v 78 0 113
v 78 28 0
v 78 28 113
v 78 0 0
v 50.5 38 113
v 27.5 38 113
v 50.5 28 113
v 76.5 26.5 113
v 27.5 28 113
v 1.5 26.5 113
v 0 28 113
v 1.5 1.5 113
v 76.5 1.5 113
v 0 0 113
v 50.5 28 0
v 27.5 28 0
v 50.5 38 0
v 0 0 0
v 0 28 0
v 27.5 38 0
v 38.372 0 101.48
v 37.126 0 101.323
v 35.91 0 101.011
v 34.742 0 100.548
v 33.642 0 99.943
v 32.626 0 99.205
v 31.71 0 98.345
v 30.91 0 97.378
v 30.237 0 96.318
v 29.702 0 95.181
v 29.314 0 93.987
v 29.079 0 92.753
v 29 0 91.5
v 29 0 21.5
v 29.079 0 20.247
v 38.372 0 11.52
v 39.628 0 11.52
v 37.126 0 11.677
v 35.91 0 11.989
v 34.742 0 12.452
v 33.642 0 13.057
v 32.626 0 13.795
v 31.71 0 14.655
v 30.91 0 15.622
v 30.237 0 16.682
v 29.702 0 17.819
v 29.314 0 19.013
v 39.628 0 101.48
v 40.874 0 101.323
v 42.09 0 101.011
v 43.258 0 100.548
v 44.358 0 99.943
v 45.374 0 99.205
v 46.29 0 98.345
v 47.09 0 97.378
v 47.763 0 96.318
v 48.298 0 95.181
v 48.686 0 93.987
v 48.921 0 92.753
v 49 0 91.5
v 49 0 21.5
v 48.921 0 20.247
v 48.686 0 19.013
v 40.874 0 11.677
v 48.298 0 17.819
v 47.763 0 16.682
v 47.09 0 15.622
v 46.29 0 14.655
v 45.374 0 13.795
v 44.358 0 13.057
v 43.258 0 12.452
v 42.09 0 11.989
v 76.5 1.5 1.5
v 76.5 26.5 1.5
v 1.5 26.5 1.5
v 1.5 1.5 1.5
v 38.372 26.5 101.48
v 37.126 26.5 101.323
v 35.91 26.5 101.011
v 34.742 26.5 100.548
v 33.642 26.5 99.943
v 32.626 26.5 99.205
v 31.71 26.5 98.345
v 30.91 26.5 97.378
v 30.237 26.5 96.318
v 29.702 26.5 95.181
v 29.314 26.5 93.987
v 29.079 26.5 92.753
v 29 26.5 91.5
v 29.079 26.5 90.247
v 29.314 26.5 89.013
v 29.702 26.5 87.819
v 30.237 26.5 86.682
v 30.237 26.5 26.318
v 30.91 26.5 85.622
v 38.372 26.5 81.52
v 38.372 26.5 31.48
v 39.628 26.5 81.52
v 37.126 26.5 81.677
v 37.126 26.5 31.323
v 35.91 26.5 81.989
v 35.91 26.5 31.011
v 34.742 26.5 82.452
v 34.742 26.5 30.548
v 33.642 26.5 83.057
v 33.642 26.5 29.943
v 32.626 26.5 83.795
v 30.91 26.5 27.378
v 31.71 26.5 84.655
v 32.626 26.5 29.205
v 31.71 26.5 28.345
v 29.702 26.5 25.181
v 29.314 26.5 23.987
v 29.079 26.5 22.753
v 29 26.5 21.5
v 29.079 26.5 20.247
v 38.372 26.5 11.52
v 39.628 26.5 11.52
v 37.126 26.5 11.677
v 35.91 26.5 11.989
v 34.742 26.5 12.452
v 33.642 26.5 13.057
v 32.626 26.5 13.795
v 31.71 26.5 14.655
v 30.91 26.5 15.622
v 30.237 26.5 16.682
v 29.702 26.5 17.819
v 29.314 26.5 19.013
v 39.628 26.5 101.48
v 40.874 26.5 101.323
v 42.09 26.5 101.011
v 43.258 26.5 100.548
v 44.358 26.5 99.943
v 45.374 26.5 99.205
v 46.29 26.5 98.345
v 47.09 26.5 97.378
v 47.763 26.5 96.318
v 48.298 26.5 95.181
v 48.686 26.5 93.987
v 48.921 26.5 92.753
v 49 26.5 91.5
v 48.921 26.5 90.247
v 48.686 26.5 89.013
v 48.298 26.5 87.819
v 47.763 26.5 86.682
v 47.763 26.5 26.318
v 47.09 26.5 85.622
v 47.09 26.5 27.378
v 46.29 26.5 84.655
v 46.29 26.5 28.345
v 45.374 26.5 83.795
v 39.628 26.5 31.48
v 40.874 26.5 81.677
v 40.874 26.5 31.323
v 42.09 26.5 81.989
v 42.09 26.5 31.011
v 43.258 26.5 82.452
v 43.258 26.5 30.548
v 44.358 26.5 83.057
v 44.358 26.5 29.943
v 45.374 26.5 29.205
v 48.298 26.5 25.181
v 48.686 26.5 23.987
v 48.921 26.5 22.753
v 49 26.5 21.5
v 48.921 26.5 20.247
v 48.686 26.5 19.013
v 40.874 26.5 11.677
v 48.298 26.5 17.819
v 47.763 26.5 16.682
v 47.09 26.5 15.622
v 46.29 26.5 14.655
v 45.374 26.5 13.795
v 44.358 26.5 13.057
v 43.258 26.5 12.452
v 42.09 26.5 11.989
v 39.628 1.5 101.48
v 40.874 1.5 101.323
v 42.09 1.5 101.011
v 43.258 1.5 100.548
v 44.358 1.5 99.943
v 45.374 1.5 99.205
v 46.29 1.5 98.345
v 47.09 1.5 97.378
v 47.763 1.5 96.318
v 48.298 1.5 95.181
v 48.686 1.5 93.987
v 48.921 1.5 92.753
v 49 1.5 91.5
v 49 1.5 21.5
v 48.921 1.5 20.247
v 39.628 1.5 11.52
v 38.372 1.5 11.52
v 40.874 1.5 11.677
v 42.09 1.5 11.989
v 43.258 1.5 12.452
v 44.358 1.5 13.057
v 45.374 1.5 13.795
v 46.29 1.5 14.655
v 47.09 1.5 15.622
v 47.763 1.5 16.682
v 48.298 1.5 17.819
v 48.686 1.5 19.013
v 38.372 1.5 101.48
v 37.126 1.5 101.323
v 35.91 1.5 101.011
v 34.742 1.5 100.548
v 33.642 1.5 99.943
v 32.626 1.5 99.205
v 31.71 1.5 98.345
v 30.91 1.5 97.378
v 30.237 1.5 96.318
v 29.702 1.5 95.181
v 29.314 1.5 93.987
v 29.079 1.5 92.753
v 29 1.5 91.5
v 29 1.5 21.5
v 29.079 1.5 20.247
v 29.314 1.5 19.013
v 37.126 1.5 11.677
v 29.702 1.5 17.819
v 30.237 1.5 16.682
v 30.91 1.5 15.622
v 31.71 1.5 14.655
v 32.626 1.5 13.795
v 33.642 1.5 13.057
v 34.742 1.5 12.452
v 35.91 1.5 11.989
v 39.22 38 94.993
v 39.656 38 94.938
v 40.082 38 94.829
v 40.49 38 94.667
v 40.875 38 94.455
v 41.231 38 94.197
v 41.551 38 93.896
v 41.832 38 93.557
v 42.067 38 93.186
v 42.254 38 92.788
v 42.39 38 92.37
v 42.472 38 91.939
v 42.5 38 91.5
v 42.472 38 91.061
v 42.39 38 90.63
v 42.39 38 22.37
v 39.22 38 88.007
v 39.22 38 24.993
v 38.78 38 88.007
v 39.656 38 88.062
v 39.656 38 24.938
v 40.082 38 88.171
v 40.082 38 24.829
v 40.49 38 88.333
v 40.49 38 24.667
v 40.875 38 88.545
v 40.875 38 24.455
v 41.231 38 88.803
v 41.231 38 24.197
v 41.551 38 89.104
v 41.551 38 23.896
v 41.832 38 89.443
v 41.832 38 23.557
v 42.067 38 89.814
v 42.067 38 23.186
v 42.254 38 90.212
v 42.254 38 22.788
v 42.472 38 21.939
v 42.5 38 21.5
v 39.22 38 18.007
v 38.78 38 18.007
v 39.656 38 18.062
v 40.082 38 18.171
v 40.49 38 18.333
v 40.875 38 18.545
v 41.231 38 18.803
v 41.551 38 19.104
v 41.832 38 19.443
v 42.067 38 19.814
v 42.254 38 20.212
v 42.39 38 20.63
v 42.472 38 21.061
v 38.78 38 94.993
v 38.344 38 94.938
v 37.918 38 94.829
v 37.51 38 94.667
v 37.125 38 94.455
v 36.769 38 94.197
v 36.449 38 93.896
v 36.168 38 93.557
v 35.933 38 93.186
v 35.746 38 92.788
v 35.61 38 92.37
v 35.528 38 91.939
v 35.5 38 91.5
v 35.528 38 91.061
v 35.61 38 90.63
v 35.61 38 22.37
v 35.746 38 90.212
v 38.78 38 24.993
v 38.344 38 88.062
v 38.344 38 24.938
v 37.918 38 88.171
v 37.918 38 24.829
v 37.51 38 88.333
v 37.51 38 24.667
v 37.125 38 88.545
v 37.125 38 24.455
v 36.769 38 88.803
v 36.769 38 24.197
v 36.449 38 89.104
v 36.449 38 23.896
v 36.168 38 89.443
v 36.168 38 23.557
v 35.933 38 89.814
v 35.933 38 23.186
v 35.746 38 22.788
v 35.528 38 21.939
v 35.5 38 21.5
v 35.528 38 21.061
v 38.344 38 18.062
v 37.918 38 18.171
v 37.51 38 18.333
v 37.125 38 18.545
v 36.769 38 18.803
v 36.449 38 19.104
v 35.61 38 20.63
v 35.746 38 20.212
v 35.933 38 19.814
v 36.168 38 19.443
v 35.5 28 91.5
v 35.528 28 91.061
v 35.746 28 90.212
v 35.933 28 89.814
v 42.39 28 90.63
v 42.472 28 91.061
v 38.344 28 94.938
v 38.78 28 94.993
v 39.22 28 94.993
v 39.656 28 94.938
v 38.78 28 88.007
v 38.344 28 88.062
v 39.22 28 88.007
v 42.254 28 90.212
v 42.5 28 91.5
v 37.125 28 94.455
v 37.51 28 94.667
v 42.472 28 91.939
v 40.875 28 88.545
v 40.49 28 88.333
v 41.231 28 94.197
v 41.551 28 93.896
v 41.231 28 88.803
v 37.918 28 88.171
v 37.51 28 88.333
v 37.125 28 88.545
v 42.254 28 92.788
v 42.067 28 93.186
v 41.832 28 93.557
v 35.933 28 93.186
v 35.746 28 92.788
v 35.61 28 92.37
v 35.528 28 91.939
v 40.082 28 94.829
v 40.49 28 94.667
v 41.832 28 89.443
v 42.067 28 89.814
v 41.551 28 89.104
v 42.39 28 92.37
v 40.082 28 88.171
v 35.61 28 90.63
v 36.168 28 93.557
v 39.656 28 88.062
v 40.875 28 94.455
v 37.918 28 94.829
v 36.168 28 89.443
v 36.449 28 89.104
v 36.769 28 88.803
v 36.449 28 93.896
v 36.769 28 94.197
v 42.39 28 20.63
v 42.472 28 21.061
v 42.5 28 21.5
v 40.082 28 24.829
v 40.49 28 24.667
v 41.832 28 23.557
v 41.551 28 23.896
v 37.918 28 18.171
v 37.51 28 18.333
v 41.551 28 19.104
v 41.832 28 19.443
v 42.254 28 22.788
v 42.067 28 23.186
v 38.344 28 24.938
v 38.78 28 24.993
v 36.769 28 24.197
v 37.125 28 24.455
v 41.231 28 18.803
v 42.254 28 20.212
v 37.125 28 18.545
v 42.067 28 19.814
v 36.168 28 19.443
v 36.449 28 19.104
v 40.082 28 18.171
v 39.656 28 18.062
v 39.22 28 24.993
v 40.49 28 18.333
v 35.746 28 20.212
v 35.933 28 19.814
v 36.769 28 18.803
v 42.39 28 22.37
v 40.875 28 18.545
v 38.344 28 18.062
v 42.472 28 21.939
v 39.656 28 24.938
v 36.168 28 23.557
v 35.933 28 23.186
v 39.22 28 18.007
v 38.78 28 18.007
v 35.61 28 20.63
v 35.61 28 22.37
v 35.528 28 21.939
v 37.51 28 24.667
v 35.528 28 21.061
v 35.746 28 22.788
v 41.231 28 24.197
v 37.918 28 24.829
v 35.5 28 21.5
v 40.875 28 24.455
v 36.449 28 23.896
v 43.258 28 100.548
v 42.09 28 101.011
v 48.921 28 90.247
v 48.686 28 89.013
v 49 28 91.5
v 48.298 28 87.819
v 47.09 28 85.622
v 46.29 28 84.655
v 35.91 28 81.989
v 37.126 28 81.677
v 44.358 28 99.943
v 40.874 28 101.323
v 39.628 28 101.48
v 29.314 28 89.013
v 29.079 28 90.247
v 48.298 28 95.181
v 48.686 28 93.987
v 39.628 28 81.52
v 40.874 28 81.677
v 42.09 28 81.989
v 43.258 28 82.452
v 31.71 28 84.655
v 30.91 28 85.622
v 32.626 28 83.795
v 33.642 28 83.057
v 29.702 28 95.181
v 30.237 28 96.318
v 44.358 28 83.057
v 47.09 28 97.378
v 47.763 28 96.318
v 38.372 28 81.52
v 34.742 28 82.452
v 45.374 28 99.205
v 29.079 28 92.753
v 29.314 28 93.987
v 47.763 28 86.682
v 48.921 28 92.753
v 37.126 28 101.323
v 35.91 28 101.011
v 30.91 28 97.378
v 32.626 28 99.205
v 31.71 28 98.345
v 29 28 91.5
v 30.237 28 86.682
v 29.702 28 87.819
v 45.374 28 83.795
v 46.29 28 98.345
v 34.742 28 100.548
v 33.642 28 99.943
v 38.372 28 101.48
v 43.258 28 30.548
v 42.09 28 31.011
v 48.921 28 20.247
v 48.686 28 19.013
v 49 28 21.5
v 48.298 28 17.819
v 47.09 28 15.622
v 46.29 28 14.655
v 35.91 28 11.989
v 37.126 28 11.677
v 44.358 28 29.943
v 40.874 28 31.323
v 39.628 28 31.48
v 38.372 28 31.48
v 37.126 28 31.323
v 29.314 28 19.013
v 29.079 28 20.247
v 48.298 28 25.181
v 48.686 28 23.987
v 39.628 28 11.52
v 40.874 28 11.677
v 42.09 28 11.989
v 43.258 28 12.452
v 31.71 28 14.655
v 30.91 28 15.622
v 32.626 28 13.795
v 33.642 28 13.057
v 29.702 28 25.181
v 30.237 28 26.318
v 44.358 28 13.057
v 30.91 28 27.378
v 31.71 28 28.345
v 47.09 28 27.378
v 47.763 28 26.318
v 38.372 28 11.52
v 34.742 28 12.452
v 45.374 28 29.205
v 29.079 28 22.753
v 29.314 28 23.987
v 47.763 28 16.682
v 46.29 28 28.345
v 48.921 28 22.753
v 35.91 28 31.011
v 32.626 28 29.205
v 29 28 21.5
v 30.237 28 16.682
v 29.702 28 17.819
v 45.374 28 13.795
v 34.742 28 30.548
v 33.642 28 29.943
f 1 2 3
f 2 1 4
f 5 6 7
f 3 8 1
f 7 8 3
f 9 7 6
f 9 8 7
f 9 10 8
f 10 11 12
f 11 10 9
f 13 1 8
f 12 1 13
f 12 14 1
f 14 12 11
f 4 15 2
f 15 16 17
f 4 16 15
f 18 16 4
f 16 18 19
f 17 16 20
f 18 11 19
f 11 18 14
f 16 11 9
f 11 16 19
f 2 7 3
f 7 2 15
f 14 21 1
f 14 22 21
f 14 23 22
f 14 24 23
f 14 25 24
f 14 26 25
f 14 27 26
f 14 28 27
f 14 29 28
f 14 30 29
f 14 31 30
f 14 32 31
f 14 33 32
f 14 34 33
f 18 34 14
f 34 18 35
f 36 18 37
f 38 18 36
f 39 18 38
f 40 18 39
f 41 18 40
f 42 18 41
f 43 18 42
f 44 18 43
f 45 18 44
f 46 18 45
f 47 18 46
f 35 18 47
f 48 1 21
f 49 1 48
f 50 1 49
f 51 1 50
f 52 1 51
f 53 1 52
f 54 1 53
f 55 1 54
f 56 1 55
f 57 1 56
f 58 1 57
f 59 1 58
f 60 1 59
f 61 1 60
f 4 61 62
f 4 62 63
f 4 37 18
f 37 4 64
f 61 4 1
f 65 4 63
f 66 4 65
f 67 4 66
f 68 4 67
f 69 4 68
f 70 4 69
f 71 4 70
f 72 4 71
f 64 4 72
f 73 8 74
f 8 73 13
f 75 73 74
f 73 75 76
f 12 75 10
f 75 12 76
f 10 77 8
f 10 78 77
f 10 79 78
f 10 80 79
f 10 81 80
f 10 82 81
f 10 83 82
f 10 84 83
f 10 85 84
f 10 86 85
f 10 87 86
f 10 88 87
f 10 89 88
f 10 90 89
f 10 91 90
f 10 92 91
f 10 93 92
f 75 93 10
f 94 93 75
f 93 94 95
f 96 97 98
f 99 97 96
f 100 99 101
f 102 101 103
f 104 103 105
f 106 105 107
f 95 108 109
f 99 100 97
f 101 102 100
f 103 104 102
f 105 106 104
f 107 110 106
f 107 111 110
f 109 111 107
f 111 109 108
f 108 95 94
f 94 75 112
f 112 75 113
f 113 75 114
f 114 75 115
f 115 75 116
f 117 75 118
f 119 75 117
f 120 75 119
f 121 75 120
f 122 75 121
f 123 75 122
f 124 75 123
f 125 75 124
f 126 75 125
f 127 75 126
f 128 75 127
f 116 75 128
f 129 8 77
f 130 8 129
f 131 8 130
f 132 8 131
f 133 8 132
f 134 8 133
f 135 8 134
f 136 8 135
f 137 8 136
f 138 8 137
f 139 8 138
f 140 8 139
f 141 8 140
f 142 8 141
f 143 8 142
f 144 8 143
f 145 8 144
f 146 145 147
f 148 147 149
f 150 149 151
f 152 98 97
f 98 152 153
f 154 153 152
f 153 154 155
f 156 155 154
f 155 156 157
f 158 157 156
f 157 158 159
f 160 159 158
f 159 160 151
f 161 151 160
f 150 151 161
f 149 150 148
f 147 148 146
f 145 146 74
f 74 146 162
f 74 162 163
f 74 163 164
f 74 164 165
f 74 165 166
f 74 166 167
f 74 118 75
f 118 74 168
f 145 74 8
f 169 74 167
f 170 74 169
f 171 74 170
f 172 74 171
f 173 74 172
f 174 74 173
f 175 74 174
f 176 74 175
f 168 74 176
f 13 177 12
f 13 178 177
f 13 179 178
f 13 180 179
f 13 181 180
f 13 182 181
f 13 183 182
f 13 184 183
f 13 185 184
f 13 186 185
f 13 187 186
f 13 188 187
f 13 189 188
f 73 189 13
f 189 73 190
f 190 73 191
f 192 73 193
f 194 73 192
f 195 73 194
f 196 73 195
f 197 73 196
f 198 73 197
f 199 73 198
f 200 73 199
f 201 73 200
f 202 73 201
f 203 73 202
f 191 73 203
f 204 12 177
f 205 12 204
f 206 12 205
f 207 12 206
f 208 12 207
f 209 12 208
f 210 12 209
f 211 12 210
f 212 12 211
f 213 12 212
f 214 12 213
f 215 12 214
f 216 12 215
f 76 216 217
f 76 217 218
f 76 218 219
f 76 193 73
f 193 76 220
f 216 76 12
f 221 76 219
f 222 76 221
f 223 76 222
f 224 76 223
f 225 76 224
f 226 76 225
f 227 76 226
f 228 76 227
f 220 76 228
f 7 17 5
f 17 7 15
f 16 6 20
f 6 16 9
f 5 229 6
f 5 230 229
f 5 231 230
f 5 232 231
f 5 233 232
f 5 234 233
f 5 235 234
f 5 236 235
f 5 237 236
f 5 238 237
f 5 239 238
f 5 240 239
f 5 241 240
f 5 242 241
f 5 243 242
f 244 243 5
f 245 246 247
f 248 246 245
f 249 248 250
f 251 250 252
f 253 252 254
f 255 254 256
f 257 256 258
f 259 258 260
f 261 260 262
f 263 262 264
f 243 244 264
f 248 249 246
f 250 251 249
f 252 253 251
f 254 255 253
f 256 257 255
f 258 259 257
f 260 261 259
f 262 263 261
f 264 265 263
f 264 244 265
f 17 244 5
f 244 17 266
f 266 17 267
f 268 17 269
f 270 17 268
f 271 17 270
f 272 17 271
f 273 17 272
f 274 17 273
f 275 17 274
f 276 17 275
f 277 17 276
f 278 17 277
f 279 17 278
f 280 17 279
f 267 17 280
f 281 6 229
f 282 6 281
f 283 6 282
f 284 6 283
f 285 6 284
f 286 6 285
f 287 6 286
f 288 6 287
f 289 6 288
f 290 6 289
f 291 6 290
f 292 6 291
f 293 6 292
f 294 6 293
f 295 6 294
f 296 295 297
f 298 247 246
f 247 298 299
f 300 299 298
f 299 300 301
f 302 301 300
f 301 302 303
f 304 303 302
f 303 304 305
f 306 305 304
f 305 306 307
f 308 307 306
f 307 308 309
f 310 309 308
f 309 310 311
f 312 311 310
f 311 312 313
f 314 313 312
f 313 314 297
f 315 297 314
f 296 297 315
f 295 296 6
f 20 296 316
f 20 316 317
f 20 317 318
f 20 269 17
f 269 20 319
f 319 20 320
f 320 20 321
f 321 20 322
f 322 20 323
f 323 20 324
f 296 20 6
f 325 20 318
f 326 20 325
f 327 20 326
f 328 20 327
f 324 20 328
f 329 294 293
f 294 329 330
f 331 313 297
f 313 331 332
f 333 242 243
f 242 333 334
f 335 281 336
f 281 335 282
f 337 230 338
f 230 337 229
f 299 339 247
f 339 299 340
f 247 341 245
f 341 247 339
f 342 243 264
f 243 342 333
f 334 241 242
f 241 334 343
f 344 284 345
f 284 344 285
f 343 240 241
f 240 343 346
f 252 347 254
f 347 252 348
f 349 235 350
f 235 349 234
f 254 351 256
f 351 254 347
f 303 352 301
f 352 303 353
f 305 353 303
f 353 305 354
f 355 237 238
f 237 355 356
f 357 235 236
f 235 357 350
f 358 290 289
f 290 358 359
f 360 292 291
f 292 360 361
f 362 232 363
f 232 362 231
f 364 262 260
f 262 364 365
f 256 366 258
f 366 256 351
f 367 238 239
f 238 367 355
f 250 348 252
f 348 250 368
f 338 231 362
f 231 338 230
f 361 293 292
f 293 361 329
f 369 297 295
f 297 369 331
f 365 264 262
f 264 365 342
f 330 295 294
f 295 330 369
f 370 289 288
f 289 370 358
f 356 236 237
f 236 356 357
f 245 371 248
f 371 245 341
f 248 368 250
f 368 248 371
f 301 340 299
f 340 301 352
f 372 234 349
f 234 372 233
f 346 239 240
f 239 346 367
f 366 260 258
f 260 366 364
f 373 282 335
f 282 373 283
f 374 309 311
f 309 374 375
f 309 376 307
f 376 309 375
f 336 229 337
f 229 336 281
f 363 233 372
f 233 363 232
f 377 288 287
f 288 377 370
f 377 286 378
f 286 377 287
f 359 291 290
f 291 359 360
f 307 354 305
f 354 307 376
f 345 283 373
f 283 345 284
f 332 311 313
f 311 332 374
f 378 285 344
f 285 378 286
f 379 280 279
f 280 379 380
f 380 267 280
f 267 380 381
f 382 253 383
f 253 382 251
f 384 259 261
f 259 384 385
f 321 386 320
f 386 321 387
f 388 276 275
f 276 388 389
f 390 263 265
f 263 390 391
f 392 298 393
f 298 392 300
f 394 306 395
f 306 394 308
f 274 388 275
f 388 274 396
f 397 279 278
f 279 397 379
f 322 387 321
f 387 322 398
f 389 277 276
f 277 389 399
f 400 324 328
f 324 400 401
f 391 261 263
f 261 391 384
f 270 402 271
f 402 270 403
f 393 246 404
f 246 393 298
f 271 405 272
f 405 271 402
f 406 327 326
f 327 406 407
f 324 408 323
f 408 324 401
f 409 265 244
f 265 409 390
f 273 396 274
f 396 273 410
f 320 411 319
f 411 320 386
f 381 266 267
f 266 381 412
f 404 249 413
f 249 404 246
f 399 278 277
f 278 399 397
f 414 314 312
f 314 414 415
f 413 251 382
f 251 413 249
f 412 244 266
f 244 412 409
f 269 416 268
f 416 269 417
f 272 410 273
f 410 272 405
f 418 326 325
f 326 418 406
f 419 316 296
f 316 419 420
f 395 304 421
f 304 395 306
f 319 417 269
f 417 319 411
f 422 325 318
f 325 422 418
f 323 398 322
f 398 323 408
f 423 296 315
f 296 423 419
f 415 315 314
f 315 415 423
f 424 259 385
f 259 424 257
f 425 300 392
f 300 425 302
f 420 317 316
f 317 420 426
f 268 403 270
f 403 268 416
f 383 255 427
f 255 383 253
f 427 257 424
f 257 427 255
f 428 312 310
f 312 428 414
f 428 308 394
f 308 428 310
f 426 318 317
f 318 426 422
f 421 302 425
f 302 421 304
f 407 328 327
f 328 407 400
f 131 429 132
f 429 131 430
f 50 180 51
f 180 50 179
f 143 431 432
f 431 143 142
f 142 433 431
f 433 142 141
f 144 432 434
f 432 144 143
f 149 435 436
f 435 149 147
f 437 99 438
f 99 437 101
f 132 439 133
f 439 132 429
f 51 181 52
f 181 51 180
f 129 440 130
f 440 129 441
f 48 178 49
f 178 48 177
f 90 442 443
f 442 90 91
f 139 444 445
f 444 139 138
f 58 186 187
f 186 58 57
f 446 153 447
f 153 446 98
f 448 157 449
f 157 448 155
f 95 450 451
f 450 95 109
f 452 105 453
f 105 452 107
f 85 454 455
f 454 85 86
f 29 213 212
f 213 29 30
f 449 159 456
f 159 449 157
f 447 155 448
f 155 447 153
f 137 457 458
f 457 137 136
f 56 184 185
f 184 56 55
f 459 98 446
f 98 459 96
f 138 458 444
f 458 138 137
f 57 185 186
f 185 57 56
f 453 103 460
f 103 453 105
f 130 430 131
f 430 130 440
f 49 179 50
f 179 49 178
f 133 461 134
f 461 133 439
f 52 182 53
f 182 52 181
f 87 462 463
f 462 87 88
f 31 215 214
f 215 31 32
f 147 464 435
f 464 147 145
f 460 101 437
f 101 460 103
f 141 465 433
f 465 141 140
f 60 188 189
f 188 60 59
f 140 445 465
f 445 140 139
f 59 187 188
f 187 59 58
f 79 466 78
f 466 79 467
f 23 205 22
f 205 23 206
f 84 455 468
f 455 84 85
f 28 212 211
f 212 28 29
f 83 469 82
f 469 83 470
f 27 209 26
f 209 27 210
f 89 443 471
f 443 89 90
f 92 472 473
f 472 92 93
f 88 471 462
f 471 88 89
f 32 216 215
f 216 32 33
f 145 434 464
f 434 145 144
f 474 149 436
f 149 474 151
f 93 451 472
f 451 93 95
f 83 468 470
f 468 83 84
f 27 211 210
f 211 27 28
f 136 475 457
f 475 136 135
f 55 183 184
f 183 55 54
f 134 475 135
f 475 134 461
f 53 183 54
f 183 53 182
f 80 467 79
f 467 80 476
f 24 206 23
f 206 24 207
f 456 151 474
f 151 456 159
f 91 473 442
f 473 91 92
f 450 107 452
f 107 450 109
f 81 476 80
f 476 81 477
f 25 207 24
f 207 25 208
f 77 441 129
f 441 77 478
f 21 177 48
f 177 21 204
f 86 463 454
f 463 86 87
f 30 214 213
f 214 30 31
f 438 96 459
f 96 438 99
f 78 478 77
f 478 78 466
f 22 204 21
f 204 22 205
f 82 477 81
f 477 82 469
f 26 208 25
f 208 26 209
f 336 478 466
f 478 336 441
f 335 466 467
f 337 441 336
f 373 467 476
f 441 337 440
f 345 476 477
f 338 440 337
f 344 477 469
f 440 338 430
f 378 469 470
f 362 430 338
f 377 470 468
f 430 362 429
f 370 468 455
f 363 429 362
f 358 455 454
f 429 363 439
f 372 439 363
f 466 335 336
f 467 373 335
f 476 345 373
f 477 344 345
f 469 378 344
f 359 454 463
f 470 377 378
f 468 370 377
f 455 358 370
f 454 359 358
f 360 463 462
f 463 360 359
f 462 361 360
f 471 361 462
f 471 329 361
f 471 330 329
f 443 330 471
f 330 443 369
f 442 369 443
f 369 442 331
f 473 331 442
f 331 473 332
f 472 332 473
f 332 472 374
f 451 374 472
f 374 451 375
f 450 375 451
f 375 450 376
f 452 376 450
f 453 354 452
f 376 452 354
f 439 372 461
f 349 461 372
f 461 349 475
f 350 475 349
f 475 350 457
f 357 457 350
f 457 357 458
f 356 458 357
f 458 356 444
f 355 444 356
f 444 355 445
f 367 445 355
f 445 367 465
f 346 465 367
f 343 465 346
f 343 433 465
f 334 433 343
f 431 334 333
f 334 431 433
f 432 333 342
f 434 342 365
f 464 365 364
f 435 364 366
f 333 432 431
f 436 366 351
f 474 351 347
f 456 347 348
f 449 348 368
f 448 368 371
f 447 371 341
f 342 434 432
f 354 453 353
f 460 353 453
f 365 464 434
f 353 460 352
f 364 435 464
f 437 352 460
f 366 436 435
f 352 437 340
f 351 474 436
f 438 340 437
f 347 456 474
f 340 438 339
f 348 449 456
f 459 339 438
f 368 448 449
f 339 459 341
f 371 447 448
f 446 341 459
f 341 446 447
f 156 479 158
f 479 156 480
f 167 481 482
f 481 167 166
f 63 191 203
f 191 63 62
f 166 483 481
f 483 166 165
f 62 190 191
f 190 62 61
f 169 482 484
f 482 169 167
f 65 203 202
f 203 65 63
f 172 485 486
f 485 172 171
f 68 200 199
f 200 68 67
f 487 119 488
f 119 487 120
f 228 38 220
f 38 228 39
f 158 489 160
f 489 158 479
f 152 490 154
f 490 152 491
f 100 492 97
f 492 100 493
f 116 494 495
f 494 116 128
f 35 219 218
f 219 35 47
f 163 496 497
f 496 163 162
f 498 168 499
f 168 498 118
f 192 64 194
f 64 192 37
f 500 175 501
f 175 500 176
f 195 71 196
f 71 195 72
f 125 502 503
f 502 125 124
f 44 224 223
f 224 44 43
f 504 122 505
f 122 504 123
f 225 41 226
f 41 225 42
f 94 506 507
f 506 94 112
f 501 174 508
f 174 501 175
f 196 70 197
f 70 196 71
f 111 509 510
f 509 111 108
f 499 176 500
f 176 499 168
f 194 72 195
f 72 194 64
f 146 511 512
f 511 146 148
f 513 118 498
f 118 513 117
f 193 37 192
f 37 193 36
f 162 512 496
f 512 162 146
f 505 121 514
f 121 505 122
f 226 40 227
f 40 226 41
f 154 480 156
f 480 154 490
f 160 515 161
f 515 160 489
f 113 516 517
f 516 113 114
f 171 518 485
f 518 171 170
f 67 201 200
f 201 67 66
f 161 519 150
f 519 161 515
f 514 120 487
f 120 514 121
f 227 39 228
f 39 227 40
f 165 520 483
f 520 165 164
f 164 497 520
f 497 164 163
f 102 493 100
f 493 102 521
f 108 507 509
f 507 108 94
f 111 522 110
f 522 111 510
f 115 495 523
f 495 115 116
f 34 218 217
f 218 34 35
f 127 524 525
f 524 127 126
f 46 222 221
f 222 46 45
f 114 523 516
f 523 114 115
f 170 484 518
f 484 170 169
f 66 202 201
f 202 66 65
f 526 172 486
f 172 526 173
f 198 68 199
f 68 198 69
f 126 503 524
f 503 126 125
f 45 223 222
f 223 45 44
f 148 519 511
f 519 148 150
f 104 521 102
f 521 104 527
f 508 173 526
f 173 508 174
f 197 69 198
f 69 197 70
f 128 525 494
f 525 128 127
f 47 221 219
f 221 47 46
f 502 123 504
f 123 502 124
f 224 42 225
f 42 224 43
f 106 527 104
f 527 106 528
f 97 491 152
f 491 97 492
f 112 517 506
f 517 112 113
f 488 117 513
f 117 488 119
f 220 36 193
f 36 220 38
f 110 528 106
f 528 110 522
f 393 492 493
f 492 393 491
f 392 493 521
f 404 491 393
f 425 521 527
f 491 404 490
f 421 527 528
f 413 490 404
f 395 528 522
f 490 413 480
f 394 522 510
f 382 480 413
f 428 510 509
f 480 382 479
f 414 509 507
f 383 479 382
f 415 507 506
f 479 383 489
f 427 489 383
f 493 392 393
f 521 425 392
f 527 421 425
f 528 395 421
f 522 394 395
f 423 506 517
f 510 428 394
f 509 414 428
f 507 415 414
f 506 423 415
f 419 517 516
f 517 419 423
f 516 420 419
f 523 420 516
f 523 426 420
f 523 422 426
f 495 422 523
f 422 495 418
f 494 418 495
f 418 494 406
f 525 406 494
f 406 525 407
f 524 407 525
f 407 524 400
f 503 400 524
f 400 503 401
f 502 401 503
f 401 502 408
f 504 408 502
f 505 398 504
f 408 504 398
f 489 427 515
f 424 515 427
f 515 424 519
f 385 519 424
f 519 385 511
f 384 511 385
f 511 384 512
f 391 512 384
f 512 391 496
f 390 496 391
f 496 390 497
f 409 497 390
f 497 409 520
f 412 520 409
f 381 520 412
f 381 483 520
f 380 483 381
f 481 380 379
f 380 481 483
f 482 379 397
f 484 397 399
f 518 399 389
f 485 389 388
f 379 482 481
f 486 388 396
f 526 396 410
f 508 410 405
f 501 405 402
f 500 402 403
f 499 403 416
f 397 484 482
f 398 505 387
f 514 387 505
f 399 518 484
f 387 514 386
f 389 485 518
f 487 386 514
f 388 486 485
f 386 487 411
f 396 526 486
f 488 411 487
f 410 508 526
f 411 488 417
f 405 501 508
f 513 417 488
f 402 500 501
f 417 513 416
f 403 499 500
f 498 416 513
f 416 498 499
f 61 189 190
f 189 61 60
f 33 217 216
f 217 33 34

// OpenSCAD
/* [Parameters] */

//Thickness of the cradle walls
WALL_THICKNESS = 1.5; 

//Inner measurement of the cradle from front to back
CRADLE_INNER_DEPTH = 25; //[10:100]
//Inner measurement of the cradle from left to right
CRADLE_INNER_WIDTH = 75; //[10:100]
//Inner measurement of the cradle from top (opening) to bottom
CRADLE_INNER_HEIGHT = 110; //[10:300]
//Thickness of the block on the (mounted to bike)
OFFSET_BLOCK_D = 10; //[1:50]
//Distance on center between the 2 rear mounting holes
SCREW_HOLE_DIST = 70; //[0:100]

//Diameter of the screw holes.  Typically use 1mm larger than your screw size.  IE, if using M6 screws, set this to 7
SCREW_HOLE_W = 7; //[2:10]

//Width of the countersink around the screw holes.  This must be large enough to fit your wrench/driver and washer.  This should also be slightly oversized
SCREW_COUNTER_W = 20; //[10:50]

//Depth of the offset block behind the screw countersink.  A smaller depth will mean a thinner part between the screw head and bike.
SCREW_COUNTER_D = 10; //[0:90]

/* [Hidden] */
CRADLE_D = CRADLE_INNER_DEPTH + WALL_THICKNESS*2; 
CRADLE_W = CRADLE_INNER_WIDTH + WALL_THICKNESS*2;
CRADLE_H = CRADLE_INNER_HEIGHT + WALL_THICKNESS*2;;
OFFSET_BLOCK_W = SCREW_COUNTER_W + WALL_THICKNESS*2;
OFFSET_BLOCK_H  = CRADLE_H;


$fn = 50;
difference()
{
	union()
	{
		//Build cradle
		difference()
		{
			cube([CRADLE_W,CRADLE_D,CRADLE_H]);
			translate([WALL_THICKNESS,WALL_THICKNESS,WALL_THICKNESS])
			{
				cube([CRADLE_W-WALL_THICKNESS*2,CRADLE_D-WALL_THICKNESS*2,CRADLE_H]);
			}
		}
		//Attach offset block
		translate([CRADLE_W/2-OFFSET_BLOCK_W/2,CRADLE_D,CRADLE_H/2-OFFSET_BLOCK_H/2])
		{
			cube([OFFSET_BLOCK_W,OFFSET_BLOCK_D,OFFSET_BLOCK_H]);	
		}
		
	}
	//Drill upper hole
	translate([CRADLE_W/2,0,CRADLE_H/2+SCREW_HOLE_DIST/2])
	{
		rotate([-90,0,0])
		{
			cylinder(CRADLE_D+OFFSET_BLOCK_D,SCREW_HOLE_W/2,SCREW_HOLE_W/2);
		}
	}
	//Drill lower hole
	translate([CRADLE_W/2,0,CRADLE_H/2-SCREW_HOLE_DIST/2])
	{
		rotate([-90,0,0])
		{
			cylinder(CRADLE_D+OFFSET_BLOCK_D,SCREW_HOLE_W/2,SCREW_HOLE_W/2);
		}
	}

	//Drill upper countersink
	translate([CRADLE_W/2,-SCREW_COUNTER_D,CRADLE_H/2+SCREW_HOLE_DIST/2])
	{
		rotate([-90,0,0])
		{
			cylinder(CRADLE_D+OFFSET_BLOCK_D,SCREW_COUNTER_W/2,SCREW_COUNTER_W/2);
		}
	}
	//Drill lower countersink
	translate([CRADLE_W/2,-SCREW_COUNTER_D,CRADLE_H/2-SCREW_HOLE_DIST/2])
	{
		rotate([-90,0,0])
		{
			cylinder(CRADLE_D+OFFSET_BLOCK_D,SCREW_COUNTER_W/2,SCREW_COUNTER_W/2);
		}
	}
	
	//Front cutout
	translate([CRADLE_W/2-SCREW_COUNTER_W/2,0,CRADLE_H/2-(SCREW_HOLE_DIST/2)])
	{
		cube([SCREW_COUNTER_W,WALL_THICKNESS,SCREW_HOLE_DIST]);
	}
	
	
}
